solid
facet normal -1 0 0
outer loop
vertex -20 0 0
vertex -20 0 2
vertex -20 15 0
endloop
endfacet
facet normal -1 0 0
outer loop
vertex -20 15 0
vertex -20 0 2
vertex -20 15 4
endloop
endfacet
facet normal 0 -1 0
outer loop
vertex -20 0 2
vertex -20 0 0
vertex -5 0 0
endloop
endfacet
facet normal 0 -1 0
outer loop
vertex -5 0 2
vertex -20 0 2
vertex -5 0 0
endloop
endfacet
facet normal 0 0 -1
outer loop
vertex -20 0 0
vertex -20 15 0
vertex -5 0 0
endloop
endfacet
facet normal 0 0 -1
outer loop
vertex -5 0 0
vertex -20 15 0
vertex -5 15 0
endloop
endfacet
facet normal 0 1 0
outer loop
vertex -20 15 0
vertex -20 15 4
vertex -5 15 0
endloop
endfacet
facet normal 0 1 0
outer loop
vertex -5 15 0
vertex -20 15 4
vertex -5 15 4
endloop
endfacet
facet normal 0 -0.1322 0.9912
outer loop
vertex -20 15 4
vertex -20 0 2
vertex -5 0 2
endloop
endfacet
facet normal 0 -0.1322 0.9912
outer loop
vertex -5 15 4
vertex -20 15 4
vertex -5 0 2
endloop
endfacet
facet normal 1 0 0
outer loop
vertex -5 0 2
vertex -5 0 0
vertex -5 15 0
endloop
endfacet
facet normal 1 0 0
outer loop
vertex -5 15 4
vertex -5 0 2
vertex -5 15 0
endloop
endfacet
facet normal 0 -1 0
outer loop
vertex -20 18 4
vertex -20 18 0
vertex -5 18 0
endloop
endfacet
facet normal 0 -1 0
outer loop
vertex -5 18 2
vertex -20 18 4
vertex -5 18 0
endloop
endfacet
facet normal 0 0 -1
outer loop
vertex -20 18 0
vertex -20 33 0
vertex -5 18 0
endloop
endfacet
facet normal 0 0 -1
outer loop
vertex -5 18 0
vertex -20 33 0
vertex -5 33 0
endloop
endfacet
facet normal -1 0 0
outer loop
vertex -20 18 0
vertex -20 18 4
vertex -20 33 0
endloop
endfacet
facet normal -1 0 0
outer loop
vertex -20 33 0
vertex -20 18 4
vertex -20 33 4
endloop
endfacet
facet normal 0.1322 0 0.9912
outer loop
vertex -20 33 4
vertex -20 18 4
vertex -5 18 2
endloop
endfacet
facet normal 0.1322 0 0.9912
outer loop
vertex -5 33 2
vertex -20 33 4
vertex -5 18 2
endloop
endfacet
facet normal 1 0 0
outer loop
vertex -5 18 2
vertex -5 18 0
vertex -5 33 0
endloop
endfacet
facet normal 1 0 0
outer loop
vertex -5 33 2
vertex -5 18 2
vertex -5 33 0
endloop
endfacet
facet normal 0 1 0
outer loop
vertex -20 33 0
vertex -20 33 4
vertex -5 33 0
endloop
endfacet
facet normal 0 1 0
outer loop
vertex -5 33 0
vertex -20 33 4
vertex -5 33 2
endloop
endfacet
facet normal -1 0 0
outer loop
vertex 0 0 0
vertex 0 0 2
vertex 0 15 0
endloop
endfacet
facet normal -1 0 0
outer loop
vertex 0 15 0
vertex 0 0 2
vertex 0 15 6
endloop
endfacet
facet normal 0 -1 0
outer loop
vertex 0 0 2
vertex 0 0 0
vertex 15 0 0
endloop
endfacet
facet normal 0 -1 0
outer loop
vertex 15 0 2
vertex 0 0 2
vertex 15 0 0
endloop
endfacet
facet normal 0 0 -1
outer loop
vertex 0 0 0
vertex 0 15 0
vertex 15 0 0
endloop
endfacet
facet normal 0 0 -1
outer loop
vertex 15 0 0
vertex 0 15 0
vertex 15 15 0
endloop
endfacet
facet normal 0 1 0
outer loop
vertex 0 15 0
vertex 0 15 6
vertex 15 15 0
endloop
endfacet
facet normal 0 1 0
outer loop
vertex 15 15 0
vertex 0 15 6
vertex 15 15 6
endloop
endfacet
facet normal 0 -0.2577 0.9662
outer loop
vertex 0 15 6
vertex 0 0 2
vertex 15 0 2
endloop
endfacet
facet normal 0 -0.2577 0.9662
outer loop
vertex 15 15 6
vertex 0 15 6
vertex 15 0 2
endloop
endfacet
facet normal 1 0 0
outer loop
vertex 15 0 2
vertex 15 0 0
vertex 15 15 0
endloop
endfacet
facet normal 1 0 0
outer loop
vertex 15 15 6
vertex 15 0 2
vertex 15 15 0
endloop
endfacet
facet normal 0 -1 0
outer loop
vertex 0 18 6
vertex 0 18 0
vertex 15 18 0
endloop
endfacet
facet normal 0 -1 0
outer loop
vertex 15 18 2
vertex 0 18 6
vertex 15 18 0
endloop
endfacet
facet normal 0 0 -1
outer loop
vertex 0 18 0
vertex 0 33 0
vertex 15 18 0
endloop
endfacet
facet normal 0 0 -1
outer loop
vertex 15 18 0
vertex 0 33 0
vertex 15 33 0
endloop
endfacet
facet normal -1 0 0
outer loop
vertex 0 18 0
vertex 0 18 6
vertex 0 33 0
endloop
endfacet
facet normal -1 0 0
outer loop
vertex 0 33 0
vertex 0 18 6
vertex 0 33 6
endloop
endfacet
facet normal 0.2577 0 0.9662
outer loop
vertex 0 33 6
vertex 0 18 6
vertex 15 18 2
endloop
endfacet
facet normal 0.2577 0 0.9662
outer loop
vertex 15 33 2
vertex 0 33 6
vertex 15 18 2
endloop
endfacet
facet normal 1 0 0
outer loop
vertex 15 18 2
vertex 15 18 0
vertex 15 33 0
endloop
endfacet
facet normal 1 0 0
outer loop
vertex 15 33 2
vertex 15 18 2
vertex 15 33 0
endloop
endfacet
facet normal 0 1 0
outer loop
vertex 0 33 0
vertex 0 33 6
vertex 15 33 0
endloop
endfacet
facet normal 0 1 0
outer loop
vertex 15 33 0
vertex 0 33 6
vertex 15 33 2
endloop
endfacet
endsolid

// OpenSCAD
module ramp(dimentions, center=false) {
	points = [[0,0,0],[1,0,0],[1,1,0],[0,1,0],[0,1,1],[1,1,1]];
	triangles = [[0,1,2],[0,2,3],[0,3,4],[5,2,1],[3,2,5],[5,4,3],[5,1,0],[0,4,5]];
	scale(dimentions){
		if(center) {
			translate([-0.5,-0.5,-0.5])
			polyhedron(points = points, triangles = triangles, convexity = 1);
		} else {
			polyhedron(points = points, triangles = triangles, convexity = 1);
		}
	}
}

module sloped_roof(dimentions, roofheight) {
	union() {
		cube(dimentions);
		translate([0,0,dimentions[2]])
		ramp([dimentions[0],dimentions[1],roofheight]);
	}
}

module double_roof(dimentions, roofheight) {
	sloped_roof(dimentions, roofheight);
	translate([max(dimentions[0],dimentions[1]),max(dimentions[0],dimentions[1])*1.2,0])
	rotate([0,0,90])
	sloped_roof(dimentions, roofheight);
}

dimentions = [15,15,2];
roofstart = 2;
roofstep = 2;

istart = 0;
iend = 1;

spacing = 20;

translate([-(0.5*(iend+1-istart))*spacing,0,0])
for(i=[istart:iend]) {
	translate([i*spacing,0,0])
	double_roof(dimentions, roofstart+i*roofstep);
}
